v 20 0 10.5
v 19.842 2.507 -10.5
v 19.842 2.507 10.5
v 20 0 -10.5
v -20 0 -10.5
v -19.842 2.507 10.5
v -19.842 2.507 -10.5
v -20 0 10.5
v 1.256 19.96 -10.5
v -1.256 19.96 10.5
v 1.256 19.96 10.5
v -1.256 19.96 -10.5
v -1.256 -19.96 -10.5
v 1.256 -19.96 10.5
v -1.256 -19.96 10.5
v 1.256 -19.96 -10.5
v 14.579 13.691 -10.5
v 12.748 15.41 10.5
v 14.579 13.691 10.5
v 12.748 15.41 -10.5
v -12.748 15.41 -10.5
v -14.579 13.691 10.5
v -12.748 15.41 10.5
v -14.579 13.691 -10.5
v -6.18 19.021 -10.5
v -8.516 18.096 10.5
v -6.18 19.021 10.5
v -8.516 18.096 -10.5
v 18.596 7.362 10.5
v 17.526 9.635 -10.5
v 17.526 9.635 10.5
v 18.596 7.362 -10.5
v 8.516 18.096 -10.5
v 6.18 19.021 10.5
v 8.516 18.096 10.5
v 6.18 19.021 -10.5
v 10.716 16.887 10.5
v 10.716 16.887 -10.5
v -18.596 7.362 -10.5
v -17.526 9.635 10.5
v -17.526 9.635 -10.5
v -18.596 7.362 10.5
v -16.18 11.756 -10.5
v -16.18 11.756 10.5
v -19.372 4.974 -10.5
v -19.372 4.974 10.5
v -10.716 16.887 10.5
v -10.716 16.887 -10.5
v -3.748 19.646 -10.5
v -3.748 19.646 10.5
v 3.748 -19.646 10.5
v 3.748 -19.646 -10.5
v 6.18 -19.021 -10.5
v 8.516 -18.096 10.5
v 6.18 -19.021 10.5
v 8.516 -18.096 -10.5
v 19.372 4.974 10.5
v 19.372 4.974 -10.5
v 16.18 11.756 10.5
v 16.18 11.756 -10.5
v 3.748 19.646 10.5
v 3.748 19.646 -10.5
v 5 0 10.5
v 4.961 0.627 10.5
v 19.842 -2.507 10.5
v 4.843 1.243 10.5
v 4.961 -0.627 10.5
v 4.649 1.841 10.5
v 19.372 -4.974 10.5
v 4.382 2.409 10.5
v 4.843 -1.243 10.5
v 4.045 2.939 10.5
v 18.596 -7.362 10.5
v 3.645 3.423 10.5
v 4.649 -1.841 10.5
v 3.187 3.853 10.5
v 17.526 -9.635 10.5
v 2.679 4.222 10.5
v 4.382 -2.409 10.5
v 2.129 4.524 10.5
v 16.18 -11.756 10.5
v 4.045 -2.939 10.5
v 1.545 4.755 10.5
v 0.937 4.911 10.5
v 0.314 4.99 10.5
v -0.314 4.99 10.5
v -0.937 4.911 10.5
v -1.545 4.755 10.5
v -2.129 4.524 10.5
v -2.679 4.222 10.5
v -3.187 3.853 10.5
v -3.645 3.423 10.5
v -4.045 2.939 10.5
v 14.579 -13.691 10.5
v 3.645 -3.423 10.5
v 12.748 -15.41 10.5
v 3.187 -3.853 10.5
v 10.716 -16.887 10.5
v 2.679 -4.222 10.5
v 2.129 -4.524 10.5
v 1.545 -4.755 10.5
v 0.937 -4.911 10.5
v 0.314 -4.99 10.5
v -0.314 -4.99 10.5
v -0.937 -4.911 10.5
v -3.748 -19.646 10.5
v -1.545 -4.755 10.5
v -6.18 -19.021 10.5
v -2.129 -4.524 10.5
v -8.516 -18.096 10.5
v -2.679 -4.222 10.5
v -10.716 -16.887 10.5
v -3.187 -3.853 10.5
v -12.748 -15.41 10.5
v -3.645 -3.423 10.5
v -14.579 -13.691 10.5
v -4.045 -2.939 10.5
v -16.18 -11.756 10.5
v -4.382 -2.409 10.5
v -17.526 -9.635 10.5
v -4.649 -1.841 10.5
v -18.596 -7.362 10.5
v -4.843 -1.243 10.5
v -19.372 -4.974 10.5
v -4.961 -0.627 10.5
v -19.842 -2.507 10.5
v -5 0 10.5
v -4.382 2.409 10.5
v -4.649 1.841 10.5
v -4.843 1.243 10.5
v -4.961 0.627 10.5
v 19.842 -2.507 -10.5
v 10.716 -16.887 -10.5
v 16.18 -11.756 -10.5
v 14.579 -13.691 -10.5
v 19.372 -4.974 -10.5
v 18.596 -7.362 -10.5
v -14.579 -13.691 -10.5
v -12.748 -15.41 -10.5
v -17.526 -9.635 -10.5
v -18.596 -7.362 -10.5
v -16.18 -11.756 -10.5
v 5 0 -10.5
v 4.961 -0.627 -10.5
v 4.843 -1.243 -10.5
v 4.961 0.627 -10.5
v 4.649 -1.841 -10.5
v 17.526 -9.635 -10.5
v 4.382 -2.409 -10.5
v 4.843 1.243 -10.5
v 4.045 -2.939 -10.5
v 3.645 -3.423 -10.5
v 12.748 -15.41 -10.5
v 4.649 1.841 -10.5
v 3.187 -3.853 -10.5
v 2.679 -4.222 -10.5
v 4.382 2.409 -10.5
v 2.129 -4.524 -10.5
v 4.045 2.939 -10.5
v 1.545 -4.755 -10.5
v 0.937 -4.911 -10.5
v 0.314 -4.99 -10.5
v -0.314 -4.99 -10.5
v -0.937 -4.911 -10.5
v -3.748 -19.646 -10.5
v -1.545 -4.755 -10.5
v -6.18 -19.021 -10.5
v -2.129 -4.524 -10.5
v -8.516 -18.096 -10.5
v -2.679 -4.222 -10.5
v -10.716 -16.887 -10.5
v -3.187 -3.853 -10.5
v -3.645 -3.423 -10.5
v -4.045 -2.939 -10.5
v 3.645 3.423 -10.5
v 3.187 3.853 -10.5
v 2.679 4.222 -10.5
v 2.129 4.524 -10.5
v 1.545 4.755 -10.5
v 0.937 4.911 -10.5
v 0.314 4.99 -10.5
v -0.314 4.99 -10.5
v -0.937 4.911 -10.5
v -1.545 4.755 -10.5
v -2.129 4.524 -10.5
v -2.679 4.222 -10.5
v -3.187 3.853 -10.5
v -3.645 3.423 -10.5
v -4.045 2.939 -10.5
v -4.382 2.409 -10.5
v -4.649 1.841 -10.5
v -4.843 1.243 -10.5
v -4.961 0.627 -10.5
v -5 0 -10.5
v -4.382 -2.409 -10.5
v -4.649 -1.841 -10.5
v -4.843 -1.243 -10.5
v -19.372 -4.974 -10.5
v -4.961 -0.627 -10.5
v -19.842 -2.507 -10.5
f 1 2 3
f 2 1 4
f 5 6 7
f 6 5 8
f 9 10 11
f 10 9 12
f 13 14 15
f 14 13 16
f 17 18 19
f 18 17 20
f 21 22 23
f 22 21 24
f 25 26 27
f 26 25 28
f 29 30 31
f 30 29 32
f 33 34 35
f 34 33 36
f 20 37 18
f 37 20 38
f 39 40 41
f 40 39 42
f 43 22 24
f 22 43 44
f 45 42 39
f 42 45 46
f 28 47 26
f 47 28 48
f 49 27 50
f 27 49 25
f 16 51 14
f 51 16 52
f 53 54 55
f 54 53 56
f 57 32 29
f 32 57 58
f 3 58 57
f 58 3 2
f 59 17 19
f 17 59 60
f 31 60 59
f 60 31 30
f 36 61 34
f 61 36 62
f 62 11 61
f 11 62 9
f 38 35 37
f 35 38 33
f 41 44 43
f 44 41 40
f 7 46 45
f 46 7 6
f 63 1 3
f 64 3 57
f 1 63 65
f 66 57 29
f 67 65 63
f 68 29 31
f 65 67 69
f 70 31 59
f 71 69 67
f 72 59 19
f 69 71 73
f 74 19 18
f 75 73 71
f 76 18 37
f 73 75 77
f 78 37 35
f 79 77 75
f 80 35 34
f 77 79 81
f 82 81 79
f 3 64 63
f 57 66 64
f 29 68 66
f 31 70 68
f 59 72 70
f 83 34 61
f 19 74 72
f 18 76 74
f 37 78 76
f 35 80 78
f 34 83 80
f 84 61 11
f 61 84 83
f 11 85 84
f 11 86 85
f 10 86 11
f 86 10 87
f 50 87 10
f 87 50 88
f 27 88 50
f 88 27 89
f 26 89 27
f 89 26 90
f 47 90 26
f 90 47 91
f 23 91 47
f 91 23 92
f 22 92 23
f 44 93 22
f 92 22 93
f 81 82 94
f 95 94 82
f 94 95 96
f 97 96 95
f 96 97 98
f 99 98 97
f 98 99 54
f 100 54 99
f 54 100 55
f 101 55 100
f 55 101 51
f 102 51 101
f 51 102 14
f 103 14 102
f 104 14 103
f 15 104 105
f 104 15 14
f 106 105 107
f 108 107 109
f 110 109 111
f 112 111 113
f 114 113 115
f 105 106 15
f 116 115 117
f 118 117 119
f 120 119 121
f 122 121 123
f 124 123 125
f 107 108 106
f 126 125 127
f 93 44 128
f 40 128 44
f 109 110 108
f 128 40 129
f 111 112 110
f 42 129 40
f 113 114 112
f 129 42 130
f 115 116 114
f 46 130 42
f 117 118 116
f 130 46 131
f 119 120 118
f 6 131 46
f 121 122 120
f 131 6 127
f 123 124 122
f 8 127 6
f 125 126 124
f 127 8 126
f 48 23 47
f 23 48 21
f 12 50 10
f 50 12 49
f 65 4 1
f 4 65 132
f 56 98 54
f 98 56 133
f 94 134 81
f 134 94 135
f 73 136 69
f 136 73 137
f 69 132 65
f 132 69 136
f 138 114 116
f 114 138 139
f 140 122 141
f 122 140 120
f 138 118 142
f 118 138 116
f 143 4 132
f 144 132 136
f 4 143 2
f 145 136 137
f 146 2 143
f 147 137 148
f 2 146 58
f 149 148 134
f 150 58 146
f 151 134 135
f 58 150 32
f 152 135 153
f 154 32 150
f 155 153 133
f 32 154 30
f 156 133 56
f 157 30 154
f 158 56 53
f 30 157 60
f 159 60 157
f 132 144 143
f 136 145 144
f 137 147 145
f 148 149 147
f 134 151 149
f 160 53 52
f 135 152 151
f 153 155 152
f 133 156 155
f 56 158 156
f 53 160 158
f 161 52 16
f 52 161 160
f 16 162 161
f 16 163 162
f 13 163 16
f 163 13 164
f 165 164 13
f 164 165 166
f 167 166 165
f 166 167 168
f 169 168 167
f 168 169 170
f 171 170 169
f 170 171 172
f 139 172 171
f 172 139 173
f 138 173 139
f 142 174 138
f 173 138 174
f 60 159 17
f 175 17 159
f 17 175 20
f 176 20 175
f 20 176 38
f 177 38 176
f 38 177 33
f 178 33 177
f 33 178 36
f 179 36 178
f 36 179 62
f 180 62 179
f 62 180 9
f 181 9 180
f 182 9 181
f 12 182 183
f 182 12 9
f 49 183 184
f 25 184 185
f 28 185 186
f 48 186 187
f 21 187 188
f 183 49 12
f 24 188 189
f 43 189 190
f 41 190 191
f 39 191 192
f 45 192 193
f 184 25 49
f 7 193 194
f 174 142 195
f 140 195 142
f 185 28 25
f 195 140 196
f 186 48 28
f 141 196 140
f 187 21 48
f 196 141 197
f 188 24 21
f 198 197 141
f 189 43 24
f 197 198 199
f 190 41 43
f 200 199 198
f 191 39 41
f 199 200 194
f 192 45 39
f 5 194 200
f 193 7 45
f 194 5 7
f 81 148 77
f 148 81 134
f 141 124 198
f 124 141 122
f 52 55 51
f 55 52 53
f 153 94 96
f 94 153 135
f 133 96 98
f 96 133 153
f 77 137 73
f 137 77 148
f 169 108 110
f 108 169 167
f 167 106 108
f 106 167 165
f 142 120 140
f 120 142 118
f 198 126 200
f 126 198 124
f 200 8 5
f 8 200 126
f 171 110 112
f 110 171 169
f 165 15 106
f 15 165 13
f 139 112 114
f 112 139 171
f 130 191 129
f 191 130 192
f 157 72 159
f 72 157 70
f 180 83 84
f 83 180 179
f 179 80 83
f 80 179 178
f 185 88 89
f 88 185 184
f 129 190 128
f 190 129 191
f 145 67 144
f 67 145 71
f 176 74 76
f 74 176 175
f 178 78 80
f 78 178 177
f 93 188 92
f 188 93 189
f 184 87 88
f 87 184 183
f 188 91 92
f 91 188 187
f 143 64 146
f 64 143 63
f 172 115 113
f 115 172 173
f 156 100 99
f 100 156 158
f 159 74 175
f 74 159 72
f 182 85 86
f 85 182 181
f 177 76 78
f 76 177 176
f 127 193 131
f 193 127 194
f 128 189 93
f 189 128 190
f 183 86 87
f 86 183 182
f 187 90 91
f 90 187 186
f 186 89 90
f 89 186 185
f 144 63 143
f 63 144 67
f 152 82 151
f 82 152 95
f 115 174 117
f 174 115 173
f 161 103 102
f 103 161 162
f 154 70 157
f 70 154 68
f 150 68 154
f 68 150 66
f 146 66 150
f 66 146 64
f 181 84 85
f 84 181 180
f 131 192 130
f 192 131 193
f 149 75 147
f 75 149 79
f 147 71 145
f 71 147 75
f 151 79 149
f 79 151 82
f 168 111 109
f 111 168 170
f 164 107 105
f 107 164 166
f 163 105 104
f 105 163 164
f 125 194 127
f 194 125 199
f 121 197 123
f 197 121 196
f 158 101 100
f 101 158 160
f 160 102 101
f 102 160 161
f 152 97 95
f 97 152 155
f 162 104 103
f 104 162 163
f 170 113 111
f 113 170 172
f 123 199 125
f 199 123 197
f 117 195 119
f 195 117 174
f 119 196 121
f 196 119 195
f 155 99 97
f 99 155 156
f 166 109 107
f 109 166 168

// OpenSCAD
$fn = 50;


difference() {
	union() {
		translate(v = [0, 0, -10.5000000000]) {
			cylinder(h = 21, r = 20.0000000000);
		}
	}
	union() {
		translate(v = [0, 0, -100.0000000000]) {
			cylinder(h = 200, r = 5.0000000000);
		}
	}
}
